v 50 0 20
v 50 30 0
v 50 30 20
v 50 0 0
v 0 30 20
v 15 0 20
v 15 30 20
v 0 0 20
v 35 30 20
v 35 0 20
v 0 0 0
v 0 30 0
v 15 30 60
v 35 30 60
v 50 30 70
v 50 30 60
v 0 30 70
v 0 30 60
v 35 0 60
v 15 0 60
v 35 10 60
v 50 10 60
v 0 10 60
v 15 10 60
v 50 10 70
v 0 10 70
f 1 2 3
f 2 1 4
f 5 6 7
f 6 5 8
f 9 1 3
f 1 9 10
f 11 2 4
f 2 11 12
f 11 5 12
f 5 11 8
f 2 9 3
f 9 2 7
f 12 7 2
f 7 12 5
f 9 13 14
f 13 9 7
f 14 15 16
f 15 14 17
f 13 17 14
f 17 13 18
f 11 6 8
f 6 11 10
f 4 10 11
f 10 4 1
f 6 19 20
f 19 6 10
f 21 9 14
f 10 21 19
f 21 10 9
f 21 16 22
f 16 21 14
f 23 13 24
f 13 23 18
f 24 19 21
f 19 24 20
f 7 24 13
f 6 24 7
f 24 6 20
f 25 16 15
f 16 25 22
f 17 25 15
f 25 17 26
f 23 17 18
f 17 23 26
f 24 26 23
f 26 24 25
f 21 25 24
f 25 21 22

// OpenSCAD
// Base block dimensions
base_block_width = 50;
base_block_depth = 30;
base_block_height = 20;

// Vertical arm dimensions
vertical_arm_width = 20;
vertical_arm_depth = 30;
vertical_arm_height = 40;

// Horizontal arm dimensions
horizontal_arm_width = 50;
horizontal_arm_depth = 20;
horizontal_arm_height = 10;

// Base block
module base_block() {
    cube([base_block_width, base_block_depth, base_block_height]);
}

// Vertical arm
module vertical_arm() {
    translate([15, 0, base_block_height]) // Position on top of the base block
    cube([vertical_arm_width, vertical_arm_depth, vertical_arm_height]);
}

// Horizontal arm
module horizontal_arm() {
    translate([0, 10, base_block_height + vertical_arm_height]) // Position on top of the vertical arm
    cube([horizontal_arm_width, horizontal_arm_depth, horizontal_arm_height]);
}

// Assemble the model
module flexible_coupling() {
    base_block();
    vertical_arm();
    horizontal_arm();
}

// Render the model
flexible_coupling();
